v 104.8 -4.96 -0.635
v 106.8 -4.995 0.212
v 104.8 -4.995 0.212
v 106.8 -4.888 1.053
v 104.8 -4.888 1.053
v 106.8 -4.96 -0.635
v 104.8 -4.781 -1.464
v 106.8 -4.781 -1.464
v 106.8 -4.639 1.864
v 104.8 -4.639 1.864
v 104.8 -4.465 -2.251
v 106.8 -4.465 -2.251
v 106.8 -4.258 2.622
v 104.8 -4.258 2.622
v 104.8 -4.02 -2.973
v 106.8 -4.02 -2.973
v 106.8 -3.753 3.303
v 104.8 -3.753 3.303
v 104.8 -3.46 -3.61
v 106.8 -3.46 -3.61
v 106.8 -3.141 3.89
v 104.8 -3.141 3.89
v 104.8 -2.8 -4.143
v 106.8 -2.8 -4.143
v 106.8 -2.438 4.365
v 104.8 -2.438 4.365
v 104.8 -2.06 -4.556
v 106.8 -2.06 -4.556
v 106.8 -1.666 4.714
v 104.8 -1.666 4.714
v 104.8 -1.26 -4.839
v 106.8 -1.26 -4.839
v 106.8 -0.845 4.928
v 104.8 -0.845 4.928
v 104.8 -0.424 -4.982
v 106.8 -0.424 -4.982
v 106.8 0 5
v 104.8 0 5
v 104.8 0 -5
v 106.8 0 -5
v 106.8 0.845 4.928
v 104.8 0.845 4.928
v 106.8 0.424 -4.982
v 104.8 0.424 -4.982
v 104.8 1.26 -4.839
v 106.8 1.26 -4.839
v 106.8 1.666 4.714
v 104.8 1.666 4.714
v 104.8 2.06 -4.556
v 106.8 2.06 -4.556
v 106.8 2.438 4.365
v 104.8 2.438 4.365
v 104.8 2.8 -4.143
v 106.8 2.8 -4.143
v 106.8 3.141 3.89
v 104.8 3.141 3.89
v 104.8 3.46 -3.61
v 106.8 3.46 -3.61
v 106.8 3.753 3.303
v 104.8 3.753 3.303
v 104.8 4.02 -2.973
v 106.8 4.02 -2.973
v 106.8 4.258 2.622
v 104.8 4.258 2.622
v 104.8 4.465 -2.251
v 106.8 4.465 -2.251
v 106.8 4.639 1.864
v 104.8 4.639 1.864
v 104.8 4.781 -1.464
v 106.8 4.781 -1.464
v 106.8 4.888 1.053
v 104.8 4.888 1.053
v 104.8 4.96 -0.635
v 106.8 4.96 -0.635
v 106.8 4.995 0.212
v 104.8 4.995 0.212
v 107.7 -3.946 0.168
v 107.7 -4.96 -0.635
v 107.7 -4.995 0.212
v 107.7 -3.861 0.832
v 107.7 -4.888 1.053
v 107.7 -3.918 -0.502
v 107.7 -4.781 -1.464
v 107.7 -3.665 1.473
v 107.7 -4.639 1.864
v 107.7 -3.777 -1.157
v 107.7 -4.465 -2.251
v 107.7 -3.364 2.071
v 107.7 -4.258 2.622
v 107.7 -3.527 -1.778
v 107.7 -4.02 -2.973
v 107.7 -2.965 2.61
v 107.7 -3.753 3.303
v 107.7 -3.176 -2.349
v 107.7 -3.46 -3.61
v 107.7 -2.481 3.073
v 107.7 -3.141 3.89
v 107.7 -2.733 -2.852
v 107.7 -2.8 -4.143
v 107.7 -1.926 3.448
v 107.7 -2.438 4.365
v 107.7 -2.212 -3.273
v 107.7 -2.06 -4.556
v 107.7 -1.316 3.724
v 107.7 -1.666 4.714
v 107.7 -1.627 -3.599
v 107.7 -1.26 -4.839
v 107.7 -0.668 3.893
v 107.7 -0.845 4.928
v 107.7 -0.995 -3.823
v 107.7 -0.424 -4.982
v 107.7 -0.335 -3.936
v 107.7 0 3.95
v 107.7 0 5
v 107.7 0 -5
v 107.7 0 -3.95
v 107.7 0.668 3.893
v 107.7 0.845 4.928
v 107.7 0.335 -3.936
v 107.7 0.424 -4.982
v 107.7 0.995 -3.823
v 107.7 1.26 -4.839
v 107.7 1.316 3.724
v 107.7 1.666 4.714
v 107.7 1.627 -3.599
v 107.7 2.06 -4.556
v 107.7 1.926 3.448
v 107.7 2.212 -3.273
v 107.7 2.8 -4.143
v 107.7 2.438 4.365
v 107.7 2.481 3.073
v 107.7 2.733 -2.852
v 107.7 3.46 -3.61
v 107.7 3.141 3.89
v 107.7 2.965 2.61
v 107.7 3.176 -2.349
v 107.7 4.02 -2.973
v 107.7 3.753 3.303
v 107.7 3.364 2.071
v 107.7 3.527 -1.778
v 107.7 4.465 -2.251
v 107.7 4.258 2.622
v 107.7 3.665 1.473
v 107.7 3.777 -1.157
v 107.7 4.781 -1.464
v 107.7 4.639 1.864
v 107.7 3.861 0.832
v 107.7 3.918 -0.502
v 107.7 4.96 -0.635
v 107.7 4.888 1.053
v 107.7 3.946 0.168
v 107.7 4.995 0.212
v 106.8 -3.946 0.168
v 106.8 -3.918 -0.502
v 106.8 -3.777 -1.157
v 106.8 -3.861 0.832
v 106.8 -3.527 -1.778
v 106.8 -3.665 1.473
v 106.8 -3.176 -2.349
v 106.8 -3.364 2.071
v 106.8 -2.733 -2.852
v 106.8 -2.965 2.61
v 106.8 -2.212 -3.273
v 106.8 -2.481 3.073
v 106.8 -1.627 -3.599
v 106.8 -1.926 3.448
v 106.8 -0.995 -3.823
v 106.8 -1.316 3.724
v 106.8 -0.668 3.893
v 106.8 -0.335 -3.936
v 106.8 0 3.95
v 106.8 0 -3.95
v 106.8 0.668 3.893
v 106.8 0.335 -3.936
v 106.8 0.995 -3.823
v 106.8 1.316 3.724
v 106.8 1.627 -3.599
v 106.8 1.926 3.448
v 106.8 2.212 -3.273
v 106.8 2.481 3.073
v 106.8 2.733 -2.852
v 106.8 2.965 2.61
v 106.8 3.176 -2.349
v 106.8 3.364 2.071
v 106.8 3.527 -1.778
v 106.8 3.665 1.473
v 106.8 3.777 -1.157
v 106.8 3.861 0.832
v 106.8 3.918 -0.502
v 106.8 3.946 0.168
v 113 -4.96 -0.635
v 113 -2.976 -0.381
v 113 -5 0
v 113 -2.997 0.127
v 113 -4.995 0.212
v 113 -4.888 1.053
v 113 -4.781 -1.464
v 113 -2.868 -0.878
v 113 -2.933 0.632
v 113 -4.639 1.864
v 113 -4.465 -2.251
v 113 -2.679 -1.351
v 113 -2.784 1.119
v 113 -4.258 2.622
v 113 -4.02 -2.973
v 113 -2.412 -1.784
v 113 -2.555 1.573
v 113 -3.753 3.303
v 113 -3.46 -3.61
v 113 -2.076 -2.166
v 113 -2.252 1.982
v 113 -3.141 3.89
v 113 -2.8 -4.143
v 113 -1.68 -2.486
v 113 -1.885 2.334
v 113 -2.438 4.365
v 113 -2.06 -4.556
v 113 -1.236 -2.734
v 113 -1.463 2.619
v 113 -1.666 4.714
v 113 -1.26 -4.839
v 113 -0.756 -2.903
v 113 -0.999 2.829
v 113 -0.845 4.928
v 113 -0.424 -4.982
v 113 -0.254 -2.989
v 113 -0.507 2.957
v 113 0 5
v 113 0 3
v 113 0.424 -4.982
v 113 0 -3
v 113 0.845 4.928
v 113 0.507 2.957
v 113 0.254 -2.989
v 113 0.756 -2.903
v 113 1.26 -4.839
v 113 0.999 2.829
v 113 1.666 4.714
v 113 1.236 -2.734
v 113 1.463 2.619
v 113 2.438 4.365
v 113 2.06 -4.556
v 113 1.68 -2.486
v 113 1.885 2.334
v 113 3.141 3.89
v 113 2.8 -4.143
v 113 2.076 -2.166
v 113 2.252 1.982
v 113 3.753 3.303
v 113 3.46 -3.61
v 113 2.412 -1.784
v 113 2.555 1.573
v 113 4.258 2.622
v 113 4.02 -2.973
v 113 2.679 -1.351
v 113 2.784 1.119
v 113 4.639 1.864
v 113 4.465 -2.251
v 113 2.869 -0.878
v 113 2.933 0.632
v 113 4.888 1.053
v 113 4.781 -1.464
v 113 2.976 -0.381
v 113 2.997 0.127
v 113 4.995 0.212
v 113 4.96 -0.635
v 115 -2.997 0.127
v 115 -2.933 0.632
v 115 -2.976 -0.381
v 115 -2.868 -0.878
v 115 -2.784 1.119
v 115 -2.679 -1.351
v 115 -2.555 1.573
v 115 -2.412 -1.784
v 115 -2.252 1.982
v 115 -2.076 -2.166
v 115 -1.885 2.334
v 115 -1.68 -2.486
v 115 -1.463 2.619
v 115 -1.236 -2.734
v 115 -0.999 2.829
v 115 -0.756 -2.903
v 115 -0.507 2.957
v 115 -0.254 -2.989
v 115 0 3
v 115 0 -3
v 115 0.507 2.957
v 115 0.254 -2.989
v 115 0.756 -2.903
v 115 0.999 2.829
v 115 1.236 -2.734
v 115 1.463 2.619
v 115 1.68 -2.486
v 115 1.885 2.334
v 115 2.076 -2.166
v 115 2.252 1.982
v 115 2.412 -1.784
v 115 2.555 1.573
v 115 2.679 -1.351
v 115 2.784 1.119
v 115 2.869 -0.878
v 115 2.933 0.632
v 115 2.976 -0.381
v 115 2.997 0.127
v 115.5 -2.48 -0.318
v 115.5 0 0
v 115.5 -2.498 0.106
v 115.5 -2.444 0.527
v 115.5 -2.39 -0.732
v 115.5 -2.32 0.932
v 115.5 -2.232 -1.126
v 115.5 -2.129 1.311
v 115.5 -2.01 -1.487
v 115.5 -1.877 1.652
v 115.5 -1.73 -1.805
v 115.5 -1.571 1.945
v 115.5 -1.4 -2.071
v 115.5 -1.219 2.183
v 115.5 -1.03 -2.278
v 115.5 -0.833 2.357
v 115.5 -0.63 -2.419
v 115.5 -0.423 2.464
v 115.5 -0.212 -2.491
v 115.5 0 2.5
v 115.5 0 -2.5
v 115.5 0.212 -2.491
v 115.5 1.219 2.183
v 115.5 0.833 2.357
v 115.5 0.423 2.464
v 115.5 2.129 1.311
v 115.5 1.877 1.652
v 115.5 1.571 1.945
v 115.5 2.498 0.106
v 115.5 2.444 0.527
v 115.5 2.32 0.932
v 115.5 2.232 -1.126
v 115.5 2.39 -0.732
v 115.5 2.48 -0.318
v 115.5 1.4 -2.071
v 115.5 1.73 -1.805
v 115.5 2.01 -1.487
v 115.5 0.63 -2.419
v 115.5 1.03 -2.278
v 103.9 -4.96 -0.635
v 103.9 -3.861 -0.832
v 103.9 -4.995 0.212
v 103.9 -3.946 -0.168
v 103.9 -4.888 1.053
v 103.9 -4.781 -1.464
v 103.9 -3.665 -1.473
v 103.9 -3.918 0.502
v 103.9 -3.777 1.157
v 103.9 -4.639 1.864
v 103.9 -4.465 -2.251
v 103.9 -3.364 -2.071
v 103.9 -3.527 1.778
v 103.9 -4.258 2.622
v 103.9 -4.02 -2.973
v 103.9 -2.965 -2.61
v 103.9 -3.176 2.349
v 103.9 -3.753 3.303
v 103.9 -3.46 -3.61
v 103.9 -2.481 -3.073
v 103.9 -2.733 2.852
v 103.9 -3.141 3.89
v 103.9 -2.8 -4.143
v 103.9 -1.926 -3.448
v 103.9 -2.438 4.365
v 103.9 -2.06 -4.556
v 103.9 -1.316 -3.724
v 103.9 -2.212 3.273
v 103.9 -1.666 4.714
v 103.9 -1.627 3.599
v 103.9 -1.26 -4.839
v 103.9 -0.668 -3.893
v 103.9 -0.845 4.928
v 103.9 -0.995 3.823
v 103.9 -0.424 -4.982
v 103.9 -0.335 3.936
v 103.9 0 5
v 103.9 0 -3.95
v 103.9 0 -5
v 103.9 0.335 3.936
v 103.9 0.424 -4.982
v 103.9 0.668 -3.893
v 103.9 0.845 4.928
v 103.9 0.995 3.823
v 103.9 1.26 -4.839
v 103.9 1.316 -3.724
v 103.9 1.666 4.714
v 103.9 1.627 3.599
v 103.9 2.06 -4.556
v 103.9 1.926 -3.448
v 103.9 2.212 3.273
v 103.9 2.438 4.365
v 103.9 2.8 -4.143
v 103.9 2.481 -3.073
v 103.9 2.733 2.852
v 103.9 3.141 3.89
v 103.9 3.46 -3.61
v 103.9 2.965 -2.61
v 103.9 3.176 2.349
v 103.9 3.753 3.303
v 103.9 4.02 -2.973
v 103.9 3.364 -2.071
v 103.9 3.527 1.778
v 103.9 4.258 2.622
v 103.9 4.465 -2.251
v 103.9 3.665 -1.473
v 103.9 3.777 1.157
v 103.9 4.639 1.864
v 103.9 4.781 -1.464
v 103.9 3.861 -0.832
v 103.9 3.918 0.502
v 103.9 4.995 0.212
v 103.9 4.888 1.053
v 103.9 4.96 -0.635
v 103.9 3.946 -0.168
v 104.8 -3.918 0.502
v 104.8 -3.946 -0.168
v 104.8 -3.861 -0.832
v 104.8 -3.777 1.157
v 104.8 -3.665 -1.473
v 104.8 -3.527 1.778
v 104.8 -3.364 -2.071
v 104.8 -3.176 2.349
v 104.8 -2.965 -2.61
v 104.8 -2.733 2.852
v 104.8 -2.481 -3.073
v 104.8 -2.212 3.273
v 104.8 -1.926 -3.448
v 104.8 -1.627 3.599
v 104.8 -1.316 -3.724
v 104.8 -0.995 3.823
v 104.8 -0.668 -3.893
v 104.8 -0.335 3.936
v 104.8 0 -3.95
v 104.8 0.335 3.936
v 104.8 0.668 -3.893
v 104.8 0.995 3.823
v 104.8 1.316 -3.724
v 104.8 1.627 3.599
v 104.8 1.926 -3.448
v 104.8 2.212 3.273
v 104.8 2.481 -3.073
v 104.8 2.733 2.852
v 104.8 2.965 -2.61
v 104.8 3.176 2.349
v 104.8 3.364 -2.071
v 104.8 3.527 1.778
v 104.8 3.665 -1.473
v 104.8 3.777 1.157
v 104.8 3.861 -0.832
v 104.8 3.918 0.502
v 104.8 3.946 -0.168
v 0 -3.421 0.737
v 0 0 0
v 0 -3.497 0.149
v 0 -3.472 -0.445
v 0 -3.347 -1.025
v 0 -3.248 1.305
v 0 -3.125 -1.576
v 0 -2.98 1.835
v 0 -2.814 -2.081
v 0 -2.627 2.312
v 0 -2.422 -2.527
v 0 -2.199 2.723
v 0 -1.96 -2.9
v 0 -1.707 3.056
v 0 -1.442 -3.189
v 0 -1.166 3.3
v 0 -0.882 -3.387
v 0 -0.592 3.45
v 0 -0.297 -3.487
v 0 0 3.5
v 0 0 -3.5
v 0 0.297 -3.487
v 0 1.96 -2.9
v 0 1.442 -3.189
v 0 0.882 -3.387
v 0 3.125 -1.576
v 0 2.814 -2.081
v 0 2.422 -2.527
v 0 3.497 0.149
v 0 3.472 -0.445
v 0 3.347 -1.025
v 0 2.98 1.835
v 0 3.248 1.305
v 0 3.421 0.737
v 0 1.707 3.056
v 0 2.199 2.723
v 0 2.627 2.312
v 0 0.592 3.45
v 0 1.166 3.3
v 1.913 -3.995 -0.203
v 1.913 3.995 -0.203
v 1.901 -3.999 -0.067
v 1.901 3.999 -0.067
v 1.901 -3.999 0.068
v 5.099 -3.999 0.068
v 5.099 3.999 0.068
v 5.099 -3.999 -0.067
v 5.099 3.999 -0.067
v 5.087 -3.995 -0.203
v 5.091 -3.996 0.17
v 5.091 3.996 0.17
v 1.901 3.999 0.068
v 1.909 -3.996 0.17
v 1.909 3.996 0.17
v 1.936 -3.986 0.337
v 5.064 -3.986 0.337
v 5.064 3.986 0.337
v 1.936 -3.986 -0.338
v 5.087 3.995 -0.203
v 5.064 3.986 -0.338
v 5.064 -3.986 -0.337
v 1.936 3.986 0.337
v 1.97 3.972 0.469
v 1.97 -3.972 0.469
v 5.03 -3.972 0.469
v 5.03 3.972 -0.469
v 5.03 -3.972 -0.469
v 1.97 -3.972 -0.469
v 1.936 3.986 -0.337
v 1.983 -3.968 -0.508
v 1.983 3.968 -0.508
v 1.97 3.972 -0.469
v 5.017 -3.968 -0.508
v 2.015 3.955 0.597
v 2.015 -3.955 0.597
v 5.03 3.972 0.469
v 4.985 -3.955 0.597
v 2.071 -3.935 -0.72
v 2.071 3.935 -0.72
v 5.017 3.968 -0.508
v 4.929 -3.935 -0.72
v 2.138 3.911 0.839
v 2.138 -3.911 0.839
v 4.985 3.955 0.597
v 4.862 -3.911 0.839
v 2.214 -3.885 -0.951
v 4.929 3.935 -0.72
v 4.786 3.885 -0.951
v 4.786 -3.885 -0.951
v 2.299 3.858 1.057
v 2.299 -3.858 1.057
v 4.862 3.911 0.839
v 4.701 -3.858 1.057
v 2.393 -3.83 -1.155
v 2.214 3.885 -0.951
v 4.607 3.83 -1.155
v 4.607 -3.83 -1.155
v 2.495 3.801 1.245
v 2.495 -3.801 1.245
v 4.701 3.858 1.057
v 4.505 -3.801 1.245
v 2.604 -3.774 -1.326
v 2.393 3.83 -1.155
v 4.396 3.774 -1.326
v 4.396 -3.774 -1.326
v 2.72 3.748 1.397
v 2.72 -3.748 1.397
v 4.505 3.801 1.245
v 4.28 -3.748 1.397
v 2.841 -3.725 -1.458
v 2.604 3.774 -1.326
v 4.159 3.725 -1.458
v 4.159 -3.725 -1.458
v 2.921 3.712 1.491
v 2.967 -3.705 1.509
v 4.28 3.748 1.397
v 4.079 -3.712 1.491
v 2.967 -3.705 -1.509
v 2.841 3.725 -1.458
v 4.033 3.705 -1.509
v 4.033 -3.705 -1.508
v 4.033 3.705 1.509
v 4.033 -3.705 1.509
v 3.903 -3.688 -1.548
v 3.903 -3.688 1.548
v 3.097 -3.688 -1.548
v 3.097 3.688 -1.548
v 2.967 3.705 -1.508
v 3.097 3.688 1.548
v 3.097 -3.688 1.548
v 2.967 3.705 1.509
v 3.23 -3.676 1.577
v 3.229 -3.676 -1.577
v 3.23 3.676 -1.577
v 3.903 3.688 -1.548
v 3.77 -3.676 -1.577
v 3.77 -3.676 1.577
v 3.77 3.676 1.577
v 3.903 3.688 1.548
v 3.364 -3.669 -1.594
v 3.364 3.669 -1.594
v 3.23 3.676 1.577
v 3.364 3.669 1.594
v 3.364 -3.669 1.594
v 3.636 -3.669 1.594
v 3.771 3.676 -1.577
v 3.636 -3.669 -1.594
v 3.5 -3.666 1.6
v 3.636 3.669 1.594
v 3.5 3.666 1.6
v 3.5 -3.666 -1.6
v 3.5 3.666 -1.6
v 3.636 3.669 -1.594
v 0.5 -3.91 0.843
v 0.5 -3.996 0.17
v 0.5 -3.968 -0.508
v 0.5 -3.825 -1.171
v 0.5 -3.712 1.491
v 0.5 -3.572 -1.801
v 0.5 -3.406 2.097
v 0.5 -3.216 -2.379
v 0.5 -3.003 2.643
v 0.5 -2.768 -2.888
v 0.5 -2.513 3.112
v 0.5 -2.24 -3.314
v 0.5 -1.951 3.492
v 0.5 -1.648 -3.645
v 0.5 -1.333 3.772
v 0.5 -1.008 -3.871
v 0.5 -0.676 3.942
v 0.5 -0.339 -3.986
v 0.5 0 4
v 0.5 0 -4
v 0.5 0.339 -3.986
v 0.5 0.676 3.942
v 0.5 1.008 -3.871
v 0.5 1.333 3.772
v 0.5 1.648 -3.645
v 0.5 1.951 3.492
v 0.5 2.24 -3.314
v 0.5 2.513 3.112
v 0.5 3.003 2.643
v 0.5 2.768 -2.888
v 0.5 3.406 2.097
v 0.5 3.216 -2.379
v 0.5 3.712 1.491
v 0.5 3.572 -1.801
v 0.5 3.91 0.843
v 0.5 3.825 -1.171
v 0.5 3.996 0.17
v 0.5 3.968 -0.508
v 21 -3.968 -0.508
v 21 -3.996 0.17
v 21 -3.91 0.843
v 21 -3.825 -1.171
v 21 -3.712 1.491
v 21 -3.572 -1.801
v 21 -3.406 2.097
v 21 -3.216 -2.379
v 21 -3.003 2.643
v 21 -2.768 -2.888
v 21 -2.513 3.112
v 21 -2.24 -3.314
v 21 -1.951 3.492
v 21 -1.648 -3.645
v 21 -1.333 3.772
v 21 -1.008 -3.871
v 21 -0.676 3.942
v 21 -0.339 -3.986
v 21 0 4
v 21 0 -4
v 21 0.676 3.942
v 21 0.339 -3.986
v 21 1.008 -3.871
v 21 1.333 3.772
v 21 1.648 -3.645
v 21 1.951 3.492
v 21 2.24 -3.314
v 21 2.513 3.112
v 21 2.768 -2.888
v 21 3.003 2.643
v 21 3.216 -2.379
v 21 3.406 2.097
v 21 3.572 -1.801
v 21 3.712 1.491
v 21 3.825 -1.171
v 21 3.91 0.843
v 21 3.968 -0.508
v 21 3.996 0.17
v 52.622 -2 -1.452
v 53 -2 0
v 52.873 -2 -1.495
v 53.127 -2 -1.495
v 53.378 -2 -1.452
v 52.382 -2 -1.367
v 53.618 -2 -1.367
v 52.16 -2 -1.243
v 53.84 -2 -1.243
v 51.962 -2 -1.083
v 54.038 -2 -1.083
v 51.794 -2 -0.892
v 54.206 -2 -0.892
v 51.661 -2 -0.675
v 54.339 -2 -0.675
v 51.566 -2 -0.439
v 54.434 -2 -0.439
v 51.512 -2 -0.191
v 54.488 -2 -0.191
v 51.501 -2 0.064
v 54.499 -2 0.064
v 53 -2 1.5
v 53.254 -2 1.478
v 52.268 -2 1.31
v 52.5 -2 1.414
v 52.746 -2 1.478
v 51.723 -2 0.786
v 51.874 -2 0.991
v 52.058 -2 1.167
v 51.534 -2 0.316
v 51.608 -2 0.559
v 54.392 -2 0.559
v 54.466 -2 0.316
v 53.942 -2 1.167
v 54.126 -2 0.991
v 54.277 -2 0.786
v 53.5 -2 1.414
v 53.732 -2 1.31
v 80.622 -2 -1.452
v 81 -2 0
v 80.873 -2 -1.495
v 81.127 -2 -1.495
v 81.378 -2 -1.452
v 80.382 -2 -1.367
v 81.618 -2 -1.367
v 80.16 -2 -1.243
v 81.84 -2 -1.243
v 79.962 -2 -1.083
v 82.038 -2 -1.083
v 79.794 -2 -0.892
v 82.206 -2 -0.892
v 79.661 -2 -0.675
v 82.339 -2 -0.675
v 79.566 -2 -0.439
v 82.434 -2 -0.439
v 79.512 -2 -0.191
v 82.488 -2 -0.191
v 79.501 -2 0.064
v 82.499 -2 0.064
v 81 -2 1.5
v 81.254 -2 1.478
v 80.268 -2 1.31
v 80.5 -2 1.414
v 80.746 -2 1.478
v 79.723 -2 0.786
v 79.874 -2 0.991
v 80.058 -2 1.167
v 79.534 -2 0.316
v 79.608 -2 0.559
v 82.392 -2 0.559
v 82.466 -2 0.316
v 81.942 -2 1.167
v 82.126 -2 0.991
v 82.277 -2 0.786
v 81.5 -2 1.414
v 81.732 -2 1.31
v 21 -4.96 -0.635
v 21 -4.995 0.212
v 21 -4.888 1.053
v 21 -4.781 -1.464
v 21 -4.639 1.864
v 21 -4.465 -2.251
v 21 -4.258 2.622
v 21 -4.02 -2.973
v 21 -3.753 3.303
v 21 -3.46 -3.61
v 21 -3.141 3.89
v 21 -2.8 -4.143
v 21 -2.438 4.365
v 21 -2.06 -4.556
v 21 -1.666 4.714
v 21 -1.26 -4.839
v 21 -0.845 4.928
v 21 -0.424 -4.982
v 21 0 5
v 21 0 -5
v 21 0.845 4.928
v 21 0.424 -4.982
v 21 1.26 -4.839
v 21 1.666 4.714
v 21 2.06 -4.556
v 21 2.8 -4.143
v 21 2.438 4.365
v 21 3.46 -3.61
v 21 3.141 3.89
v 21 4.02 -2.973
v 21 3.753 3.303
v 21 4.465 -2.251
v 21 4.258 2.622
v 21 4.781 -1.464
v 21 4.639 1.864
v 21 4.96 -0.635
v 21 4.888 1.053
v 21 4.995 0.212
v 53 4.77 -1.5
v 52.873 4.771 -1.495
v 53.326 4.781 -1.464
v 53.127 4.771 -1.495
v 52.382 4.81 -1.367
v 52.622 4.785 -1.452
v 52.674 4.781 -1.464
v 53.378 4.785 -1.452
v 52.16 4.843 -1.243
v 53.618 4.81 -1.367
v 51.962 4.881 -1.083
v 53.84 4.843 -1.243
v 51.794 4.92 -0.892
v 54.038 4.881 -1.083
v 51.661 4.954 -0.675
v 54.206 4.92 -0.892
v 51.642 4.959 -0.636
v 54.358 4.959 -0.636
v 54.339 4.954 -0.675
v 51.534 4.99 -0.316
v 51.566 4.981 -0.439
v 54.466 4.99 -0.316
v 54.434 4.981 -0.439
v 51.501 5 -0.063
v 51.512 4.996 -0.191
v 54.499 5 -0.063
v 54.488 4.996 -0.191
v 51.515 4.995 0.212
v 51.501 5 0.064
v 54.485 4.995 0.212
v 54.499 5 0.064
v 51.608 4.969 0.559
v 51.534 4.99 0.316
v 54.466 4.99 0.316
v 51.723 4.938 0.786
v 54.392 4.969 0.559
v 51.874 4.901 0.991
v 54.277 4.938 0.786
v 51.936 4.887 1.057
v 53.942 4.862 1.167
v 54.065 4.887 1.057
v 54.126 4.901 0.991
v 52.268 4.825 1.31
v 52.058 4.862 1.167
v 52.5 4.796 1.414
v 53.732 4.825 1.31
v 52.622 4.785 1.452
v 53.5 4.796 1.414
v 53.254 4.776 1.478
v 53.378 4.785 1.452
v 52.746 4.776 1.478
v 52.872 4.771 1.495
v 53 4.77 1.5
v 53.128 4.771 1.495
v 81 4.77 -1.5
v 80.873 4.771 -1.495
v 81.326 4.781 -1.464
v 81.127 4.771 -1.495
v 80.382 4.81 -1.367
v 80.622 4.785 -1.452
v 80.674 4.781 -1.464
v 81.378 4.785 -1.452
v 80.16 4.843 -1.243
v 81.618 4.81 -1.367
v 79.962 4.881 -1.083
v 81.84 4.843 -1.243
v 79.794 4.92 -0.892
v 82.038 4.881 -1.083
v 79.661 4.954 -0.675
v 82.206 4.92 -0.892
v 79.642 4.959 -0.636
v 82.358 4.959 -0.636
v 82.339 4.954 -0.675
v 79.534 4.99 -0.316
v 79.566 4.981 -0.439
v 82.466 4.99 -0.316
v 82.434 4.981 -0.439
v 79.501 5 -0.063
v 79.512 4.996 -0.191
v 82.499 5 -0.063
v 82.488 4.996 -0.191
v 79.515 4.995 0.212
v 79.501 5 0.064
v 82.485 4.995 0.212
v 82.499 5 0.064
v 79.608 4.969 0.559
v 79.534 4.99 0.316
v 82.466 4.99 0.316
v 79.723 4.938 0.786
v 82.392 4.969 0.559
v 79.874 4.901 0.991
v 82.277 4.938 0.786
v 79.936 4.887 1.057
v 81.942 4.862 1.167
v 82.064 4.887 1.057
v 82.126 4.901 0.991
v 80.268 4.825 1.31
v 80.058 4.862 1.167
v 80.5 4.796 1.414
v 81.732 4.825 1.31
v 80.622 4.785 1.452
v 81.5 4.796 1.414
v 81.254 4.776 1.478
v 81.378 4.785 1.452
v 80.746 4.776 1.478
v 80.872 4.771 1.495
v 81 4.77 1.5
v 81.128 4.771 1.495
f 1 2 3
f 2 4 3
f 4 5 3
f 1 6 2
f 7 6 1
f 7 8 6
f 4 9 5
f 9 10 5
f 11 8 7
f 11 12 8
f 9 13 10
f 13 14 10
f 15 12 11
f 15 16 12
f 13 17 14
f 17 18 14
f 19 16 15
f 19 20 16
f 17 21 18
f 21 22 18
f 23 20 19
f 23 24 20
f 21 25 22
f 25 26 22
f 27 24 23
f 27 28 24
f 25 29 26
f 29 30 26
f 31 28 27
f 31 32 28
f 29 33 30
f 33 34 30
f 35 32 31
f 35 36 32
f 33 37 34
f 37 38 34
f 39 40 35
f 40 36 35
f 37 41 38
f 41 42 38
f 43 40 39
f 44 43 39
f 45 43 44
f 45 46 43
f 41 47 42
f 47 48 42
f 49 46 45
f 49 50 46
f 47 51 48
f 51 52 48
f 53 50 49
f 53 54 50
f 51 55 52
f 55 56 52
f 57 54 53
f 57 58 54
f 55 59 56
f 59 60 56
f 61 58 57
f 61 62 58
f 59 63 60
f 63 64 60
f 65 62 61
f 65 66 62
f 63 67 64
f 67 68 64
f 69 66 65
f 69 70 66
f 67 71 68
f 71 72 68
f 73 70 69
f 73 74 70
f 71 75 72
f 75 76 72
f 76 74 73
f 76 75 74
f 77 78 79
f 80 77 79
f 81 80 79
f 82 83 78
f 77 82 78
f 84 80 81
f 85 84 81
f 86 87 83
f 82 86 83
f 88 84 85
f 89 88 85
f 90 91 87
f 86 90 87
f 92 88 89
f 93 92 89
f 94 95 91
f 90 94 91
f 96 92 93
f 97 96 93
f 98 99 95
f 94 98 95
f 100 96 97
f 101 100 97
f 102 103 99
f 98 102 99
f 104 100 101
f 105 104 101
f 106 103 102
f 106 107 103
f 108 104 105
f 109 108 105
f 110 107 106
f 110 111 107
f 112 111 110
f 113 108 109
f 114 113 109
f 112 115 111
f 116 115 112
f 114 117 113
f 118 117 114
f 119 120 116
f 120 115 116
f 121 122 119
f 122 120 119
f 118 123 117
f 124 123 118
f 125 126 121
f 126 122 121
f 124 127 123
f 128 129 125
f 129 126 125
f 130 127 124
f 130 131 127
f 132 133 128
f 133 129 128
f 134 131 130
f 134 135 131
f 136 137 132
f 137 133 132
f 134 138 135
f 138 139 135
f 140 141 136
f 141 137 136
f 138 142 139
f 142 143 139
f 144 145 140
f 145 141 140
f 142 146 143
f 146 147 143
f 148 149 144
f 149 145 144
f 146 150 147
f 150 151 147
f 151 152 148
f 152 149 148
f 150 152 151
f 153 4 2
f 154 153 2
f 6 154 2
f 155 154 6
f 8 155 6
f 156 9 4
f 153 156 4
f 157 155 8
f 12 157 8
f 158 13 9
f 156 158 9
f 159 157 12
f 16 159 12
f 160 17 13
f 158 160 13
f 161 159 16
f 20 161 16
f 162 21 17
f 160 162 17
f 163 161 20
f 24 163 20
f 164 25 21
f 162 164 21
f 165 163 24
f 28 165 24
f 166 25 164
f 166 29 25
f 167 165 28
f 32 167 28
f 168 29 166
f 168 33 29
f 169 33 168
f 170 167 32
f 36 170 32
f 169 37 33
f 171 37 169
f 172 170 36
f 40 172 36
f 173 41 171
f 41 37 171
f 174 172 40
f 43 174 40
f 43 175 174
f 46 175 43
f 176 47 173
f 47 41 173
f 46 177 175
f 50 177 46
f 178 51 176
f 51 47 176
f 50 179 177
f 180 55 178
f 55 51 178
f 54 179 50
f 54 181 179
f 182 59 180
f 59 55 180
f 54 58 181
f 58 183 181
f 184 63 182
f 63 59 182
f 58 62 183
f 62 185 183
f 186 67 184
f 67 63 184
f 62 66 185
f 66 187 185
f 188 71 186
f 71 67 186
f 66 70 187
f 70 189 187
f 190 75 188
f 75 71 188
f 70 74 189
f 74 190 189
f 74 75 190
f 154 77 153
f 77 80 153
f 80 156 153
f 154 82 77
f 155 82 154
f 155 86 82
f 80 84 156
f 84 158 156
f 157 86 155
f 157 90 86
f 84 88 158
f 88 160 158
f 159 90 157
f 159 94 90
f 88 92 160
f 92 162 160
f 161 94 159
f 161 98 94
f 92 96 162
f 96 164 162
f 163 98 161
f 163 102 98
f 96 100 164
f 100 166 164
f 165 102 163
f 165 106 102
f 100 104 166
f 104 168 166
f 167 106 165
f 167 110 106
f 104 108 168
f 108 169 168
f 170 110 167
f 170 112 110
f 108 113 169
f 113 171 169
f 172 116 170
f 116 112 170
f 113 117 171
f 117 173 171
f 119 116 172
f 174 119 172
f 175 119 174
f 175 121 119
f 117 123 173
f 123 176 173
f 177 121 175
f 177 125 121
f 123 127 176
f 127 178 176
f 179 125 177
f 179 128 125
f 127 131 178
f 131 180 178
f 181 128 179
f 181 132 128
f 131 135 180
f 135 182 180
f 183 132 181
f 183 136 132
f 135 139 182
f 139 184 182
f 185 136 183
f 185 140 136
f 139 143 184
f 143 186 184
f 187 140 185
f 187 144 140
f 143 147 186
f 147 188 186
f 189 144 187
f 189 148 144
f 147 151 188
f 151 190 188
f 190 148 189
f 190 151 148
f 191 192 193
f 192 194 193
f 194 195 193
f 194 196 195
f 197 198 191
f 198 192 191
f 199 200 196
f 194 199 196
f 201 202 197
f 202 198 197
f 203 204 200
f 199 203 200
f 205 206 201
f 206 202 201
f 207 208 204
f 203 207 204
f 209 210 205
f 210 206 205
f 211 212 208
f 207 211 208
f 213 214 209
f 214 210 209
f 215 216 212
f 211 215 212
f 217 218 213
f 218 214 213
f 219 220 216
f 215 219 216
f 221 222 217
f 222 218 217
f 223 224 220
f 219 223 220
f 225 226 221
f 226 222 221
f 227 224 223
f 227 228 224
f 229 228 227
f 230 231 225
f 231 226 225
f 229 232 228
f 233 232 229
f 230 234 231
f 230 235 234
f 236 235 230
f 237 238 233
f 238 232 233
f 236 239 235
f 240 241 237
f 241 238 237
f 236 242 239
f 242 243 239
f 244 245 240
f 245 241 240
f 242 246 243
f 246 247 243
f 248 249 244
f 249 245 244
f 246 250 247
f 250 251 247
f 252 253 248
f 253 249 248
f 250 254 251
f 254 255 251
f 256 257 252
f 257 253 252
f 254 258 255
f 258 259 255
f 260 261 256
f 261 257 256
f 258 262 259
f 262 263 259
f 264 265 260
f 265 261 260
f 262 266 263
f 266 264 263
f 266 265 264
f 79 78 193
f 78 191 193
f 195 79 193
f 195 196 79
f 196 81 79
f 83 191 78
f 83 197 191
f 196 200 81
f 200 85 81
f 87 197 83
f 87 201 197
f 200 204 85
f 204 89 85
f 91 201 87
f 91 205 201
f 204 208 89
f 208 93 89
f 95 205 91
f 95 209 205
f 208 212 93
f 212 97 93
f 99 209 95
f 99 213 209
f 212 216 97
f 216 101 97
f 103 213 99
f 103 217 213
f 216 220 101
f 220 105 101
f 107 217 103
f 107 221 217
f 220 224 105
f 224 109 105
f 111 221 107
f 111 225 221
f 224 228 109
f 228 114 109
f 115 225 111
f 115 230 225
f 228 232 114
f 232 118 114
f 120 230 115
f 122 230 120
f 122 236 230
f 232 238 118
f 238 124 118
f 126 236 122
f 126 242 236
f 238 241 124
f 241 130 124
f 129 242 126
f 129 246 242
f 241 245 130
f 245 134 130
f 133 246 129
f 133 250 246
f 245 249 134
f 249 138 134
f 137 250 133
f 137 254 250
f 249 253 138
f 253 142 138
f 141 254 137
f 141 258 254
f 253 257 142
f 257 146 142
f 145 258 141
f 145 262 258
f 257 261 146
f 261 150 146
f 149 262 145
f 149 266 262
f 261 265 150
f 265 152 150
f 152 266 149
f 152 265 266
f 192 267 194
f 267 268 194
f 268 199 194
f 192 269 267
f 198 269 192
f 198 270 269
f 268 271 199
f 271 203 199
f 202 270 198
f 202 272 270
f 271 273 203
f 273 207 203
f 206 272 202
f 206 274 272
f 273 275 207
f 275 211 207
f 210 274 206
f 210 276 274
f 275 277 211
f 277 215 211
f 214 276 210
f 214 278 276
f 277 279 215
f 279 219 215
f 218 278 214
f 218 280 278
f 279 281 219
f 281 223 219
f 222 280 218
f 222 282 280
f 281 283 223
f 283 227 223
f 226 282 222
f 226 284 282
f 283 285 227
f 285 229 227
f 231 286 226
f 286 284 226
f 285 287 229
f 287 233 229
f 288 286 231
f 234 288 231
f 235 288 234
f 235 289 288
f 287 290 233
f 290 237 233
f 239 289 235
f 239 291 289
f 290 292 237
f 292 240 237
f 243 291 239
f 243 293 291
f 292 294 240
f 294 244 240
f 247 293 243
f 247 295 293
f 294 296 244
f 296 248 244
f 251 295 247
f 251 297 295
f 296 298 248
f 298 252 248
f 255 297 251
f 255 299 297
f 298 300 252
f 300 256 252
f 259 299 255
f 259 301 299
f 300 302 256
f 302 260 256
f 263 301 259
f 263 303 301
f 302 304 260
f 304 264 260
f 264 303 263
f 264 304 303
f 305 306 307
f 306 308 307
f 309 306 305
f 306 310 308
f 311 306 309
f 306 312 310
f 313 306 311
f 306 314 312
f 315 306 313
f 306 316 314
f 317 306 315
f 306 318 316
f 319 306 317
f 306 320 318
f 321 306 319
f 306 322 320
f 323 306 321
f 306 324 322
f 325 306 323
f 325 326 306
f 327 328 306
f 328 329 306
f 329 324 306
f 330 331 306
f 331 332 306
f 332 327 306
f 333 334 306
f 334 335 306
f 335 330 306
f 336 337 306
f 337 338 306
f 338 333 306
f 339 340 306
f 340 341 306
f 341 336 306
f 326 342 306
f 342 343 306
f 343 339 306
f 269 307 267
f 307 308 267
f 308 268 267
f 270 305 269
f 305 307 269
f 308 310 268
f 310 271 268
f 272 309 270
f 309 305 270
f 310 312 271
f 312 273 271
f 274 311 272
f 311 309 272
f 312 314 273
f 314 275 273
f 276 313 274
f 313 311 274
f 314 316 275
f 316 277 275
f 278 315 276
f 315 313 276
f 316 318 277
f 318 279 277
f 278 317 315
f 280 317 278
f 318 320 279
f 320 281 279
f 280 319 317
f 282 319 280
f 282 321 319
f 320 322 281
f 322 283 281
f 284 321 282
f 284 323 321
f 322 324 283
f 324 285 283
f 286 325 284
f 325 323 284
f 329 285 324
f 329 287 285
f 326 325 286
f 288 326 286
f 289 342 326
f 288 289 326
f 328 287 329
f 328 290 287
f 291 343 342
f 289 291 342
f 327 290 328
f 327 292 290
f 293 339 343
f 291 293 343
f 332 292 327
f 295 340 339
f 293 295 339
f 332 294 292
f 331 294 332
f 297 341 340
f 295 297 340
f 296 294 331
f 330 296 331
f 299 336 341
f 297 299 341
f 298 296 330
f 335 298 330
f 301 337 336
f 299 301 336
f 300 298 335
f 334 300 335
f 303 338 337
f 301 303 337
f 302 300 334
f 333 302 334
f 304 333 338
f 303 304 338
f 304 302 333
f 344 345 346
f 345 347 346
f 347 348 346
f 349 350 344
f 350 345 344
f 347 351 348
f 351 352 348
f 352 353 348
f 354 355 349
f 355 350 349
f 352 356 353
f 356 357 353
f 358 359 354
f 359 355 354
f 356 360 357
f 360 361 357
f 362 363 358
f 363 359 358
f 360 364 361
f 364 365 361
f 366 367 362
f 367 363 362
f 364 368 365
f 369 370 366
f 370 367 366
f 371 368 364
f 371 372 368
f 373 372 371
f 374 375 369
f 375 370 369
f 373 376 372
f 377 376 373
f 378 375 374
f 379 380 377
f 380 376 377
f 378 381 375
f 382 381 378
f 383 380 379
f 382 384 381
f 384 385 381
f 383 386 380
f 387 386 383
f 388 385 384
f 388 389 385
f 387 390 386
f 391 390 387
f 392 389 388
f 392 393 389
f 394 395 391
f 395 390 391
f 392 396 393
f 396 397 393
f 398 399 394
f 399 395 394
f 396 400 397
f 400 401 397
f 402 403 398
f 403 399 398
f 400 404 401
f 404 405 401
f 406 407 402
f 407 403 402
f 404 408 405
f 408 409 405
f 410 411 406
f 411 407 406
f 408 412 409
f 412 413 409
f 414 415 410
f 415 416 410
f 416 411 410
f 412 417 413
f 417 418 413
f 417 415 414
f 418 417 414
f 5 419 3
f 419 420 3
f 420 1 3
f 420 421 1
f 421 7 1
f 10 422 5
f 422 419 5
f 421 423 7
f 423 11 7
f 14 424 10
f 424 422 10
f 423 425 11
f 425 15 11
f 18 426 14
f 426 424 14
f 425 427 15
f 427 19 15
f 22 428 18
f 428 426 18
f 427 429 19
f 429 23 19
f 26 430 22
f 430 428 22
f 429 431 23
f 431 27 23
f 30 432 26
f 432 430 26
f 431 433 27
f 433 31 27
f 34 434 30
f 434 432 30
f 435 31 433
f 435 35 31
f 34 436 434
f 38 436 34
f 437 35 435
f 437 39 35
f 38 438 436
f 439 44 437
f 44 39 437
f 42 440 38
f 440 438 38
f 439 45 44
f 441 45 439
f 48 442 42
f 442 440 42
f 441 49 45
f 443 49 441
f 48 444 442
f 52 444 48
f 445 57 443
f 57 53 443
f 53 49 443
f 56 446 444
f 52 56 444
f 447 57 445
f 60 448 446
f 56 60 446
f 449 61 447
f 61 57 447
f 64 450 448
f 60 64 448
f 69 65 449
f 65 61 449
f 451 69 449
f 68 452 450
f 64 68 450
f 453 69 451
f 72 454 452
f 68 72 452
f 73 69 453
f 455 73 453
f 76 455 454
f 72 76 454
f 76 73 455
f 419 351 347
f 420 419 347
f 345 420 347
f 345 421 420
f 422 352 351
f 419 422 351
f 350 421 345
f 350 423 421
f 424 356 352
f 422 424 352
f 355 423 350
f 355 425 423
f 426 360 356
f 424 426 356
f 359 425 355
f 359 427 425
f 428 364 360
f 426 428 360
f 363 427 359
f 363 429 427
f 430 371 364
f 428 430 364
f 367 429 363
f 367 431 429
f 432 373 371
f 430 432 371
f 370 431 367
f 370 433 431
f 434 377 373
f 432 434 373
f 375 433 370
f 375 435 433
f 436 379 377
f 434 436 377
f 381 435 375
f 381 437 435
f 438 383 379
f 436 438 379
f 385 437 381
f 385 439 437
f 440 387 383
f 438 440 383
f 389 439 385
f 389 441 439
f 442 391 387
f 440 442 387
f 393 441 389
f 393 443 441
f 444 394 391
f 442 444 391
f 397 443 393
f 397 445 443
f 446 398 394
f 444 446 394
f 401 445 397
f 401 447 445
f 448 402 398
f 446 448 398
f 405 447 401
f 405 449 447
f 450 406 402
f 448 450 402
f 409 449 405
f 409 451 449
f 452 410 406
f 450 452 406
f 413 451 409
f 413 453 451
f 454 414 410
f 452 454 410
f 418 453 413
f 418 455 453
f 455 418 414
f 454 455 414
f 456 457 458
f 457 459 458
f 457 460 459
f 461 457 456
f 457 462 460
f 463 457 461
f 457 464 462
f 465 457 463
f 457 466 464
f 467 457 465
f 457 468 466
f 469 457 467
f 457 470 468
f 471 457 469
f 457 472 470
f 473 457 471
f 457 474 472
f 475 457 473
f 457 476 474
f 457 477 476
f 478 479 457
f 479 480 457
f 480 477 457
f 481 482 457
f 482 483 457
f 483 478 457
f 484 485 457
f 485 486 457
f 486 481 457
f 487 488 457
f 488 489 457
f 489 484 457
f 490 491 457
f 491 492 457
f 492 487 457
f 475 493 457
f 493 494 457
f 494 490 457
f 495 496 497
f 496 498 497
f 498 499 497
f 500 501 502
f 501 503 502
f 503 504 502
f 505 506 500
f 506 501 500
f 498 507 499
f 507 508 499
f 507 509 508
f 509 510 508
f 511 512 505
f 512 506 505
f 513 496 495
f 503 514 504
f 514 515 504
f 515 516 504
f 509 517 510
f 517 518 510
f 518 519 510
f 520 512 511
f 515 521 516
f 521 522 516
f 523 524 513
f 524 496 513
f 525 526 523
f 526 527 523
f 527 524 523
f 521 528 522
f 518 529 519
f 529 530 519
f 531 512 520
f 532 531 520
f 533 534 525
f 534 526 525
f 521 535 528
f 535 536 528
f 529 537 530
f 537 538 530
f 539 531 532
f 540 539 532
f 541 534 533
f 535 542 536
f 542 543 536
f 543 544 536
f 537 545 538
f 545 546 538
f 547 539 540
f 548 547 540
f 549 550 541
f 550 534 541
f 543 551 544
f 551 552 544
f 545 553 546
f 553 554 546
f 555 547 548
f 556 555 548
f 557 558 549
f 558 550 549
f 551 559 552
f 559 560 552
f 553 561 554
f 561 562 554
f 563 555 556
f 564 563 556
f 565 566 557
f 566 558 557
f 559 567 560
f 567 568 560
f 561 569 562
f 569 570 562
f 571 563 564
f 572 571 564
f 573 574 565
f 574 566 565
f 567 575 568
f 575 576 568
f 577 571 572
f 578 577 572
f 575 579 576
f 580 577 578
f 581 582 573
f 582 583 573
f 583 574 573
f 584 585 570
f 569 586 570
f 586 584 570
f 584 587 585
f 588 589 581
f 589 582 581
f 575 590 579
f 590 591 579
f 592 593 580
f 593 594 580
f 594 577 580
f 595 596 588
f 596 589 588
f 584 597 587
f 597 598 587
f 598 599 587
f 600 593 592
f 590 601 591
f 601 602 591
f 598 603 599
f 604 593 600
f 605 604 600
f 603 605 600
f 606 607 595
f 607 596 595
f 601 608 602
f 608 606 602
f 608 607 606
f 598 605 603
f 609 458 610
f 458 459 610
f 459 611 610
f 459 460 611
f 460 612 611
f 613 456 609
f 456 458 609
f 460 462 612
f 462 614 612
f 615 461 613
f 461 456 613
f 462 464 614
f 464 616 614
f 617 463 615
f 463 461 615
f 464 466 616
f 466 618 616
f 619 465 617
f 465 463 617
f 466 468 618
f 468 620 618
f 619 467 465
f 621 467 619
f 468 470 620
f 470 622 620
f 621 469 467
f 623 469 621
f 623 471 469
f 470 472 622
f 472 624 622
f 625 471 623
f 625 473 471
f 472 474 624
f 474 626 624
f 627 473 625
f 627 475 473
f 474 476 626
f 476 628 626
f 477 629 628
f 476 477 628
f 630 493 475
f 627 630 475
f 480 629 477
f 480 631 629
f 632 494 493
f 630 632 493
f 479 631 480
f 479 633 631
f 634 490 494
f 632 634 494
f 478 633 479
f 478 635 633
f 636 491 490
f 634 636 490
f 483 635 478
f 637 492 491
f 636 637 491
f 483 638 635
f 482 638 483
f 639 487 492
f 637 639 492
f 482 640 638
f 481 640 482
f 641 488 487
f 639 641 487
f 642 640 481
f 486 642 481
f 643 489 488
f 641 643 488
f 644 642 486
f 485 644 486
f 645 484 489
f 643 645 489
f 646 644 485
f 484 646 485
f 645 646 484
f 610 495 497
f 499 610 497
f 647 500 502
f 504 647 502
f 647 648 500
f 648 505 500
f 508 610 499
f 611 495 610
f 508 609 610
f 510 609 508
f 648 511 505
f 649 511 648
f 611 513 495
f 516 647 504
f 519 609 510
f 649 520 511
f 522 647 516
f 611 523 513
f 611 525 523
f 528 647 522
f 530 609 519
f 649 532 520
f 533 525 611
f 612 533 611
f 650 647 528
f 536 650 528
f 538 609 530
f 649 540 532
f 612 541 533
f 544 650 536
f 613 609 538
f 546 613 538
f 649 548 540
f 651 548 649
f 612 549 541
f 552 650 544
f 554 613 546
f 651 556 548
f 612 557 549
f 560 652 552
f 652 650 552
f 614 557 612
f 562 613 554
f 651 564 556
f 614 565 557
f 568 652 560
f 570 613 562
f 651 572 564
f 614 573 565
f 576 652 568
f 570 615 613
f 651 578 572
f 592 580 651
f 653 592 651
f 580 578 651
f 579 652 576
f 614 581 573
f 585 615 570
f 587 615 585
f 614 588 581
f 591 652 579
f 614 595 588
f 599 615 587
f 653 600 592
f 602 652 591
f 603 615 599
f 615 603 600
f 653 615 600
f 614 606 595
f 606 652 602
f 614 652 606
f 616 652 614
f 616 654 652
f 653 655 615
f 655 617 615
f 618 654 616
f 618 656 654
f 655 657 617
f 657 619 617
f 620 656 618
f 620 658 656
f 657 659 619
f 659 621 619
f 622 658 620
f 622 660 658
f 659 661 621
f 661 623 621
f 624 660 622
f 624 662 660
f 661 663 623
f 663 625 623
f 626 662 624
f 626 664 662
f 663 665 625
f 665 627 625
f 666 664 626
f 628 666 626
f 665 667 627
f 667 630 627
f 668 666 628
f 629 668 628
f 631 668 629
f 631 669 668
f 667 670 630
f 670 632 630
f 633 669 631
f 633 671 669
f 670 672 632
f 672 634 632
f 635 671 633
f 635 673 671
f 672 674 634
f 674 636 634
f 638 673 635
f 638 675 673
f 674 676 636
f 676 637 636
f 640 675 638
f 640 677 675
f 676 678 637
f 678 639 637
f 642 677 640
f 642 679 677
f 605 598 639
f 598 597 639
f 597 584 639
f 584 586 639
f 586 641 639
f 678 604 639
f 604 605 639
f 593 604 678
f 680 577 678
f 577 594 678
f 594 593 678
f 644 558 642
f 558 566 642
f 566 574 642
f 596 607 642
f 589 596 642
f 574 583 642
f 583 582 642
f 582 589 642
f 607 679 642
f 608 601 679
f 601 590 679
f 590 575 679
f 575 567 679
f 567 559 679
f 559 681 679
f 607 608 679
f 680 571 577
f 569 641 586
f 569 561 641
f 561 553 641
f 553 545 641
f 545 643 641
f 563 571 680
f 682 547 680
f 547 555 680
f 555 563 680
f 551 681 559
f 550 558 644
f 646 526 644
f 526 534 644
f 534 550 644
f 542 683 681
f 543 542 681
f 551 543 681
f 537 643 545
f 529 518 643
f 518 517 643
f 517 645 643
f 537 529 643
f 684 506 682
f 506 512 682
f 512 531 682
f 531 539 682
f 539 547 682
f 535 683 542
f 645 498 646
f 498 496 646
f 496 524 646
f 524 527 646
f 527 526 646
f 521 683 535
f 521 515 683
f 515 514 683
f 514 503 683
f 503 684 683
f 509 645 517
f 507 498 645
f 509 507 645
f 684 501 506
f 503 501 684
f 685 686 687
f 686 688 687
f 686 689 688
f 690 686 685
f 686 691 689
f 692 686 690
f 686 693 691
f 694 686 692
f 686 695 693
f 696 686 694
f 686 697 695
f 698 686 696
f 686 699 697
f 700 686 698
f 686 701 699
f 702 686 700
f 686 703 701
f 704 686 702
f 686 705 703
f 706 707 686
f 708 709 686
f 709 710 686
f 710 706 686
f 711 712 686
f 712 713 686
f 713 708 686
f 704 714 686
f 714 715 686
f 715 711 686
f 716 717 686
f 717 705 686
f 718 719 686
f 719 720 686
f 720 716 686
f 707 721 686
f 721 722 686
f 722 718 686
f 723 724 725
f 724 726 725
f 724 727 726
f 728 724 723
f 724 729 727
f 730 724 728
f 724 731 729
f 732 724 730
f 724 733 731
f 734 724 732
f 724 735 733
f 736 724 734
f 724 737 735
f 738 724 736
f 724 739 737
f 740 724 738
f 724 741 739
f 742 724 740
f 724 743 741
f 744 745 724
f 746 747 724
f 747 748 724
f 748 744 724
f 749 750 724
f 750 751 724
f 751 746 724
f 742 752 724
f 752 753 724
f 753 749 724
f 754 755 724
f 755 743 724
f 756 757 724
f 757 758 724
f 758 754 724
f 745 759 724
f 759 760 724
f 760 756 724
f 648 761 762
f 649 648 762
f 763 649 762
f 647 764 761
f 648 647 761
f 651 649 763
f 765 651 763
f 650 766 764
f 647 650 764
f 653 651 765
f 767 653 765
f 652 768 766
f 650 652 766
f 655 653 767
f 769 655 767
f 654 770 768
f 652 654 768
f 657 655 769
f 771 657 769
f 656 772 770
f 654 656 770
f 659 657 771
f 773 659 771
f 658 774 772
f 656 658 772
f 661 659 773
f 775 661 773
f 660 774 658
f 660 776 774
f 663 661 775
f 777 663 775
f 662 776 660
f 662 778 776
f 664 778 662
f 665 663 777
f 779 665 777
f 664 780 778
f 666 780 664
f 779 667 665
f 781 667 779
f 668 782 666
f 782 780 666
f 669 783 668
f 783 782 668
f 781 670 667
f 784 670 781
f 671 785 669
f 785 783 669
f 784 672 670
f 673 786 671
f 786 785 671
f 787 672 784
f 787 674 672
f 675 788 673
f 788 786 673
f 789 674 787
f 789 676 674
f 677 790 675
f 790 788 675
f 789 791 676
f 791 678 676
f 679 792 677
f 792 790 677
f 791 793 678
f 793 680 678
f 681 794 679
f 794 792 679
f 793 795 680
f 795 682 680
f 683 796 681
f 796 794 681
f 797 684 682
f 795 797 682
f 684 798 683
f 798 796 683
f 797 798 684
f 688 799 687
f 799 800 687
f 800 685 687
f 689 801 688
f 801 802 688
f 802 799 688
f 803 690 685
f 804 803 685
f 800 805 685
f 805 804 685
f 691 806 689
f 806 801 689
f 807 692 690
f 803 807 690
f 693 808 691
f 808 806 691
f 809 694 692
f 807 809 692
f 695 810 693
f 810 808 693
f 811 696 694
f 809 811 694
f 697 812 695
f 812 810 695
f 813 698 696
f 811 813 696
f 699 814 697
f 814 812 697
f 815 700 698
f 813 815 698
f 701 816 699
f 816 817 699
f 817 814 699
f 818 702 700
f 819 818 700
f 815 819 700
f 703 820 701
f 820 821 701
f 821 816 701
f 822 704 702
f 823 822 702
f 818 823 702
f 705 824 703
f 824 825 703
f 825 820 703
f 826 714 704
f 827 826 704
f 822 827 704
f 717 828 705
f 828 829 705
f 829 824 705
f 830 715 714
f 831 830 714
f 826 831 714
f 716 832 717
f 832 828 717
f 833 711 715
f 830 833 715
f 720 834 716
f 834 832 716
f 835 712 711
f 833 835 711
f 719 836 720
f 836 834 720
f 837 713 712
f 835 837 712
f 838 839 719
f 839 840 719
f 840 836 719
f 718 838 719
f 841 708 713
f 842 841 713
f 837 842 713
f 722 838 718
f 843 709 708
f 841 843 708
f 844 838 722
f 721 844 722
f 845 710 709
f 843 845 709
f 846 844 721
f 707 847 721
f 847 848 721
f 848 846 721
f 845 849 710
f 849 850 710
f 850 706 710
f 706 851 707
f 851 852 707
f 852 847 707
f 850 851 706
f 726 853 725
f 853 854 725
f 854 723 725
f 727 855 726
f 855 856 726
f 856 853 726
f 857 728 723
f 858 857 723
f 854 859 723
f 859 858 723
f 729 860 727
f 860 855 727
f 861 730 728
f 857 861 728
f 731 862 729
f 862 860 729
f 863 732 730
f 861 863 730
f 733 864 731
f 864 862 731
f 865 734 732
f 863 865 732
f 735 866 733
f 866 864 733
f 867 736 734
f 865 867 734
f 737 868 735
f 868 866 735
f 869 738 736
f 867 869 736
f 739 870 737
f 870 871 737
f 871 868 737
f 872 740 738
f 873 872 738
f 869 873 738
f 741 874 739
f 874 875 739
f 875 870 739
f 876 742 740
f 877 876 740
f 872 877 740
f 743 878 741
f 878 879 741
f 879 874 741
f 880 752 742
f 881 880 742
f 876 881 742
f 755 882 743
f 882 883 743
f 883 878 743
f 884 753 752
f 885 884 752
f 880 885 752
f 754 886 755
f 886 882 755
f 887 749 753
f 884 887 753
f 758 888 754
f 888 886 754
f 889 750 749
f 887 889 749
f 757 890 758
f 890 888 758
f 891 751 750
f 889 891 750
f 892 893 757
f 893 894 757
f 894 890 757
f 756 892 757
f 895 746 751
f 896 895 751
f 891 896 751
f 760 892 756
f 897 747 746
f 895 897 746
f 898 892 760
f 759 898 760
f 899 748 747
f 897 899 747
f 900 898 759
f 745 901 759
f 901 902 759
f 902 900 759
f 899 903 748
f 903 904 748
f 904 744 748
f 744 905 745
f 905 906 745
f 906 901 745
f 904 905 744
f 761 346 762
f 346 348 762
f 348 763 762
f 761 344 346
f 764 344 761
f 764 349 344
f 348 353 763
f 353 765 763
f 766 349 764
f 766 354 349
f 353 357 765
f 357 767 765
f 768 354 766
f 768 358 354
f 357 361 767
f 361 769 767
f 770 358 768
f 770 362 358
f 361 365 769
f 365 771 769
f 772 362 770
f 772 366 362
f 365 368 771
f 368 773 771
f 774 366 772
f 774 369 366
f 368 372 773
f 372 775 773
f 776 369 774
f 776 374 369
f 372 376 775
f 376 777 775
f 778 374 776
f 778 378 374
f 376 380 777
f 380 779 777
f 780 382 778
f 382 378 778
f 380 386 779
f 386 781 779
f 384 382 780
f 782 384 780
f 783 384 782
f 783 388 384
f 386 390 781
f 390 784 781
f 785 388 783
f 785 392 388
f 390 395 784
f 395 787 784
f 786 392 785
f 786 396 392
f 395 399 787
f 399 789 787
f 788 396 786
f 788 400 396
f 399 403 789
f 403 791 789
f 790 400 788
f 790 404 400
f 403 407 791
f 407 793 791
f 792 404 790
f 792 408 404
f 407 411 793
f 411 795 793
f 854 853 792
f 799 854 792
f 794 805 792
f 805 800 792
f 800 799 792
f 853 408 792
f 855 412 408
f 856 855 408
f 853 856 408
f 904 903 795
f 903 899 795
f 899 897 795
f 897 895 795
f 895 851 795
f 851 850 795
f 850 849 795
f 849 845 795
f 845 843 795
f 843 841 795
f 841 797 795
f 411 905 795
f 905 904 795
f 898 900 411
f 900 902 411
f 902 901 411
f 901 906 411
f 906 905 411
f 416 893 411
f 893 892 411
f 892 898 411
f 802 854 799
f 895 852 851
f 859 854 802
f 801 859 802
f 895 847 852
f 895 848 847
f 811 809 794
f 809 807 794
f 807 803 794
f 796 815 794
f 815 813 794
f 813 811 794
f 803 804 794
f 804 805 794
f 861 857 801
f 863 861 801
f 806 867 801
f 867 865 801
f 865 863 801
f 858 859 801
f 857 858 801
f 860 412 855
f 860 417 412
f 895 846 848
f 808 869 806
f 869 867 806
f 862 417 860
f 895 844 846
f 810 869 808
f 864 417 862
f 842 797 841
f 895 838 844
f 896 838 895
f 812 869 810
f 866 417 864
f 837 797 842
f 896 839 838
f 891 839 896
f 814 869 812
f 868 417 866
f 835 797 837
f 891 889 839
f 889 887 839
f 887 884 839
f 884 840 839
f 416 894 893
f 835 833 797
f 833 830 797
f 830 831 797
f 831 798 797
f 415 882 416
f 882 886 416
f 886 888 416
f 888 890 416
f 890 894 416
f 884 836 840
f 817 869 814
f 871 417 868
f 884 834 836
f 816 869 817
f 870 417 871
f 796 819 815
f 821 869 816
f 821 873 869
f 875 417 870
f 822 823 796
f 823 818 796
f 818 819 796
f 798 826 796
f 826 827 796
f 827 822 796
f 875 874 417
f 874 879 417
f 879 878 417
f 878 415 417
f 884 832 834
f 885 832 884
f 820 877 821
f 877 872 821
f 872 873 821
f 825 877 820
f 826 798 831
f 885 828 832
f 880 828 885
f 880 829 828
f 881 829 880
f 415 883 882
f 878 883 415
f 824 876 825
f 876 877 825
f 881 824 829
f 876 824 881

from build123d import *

# Parameters (mm, degrees)
SKETCH_1_R          = 4
EXTRUDE_1_DEPTH     = 21
SKETCH_2_R          = 5
EXTRUDE_2_DEPTH     = 92
SKETCH_3_R          = 1.65
CUT_EXTRUDE_1_DEPTH = 20
CUT_EXTRUDE_START   = -5.3
SKETCH_7_R          = 5
SKETCH_7_R_2        = 3.95
CUT_EXTRUDE_4_DEPTH = 0.9
SKETCH_8_R          = 3
EXTRUDE_3_DEPTH     = 2.5
CHAMFER_1_SIZE      = 0.5
SKETCH_9_R          = 1.25
CUT_EXTRUDE_5_DEPTH = 7
CUT_EXTRUDE_START_2 = -3.3
SKETCH_7_2_R        = 5
SKETCH_7_2_R_2      = 3.95
CUT_EXTRUDE_6_DEPTH = 0.9


with BuildPart() as part:
    # 草图1 → 凸台-拉伸1 (new body)
    with BuildSketch(Plane(origin=(0, 0, 0), x_dir=(0, 0, -1), z_dir=(1, 0, 0))):
        with Locations(Location((0, 0, 0), (0, 0, 180))):
            Circle(SKETCH_1_R)
    extrude(amount=EXTRUDE_1_DEPTH)

    # 草图2 → 凸台-拉伸2 (add)
    with BuildSketch(Plane(origin=(21, 0, 0), x_dir=(0, 0, -1), z_dir=(1, 0, 0))):
        with Locations(Location((0, 0, 0), (0, 0, 270))):
            Circle(SKETCH_2_R)
    extrude(amount=EXTRUDE_2_DEPTH)

    # 草图3 → 切除-拉伸1 (cut)
    with BuildSketch(Plane(origin=(0, 7, 0), x_dir=(1, 0, 0), z_dir=(0, 1, 0))):
        with Locations(Location((3.5, 0, 0), (0, 0, 270))):
            Circle(SKETCH_3_R)
    extrude(amount=-CUT_EXTRUDE_1_DEPTH, mode=Mode.SUBTRACT)

    # 草图7 → 切除-拉伸4 (cut)
    with BuildSketch(Plane.ZY.offset(-101.5).offset(CUT_EXTRUDE_START)):
        with Locations(Location((0, 0, 0), (0, 0, 180))):
            Circle(SKETCH_7_R)
        with Locations(Location((0, 0, 0), (0, 0, 180))):
            Circle(SKETCH_7_R_2, mode=Mode.SUBTRACT)
    extrude(amount=-CUT_EXTRUDE_4_DEPTH, mode=Mode.SUBTRACT)

    # 草图8 → 凸台-拉伸3 (add)
    with BuildSketch(Plane(origin=(113, 0, 0), x_dir=(0, 0, -1), z_dir=(1, 0, 0))):
        Circle(SKETCH_8_R)
    extrude(amount=EXTRUDE_3_DEPTH)

    # 倒角1
    chamfer_1_edges = [part.edges().sort_by_distance(p)[0] for p in [
        (0, 0, -4),
        (115.5, 0, 3),
    ]]
    chamfer(chamfer_1_edges, length=CHAMFER_1_SIZE)

    # 草图9 → 切除-拉伸5 (cut)
    with BuildSketch(Plane(origin=(0, 5, 0), x_dir=(1, 0, 0), z_dir=(0, 1, 0))):
        with Locations(Location((81, 0, 0), (0, 0, 270))):
            Circle(SKETCH_9_R)
        with Locations(Location((53, 0, 0), (0, 0, 270))):
            Circle(SKETCH_9_R)
    extrude(amount=-CUT_EXTRUDE_5_DEPTH, mode=Mode.SUBTRACT)

    # 草图7<2> → 切除-拉伸6 (cut)
    with BuildSketch(Plane.ZY.offset(-101.5).offset(CUT_EXTRUDE_START_2)):
        with Locations(Location((0, 0, 0), (0, 0, 180))):
            Circle(SKETCH_7_2_R)
        with Locations(Location((0, 0, 0), (0, 0, 180))):
            Circle(SKETCH_7_2_R_2, mode=Mode.SUBTRACT)
    extrude(amount=CUT_EXTRUDE_6_DEPTH, mode=Mode.SUBTRACT)


solid = part.part
